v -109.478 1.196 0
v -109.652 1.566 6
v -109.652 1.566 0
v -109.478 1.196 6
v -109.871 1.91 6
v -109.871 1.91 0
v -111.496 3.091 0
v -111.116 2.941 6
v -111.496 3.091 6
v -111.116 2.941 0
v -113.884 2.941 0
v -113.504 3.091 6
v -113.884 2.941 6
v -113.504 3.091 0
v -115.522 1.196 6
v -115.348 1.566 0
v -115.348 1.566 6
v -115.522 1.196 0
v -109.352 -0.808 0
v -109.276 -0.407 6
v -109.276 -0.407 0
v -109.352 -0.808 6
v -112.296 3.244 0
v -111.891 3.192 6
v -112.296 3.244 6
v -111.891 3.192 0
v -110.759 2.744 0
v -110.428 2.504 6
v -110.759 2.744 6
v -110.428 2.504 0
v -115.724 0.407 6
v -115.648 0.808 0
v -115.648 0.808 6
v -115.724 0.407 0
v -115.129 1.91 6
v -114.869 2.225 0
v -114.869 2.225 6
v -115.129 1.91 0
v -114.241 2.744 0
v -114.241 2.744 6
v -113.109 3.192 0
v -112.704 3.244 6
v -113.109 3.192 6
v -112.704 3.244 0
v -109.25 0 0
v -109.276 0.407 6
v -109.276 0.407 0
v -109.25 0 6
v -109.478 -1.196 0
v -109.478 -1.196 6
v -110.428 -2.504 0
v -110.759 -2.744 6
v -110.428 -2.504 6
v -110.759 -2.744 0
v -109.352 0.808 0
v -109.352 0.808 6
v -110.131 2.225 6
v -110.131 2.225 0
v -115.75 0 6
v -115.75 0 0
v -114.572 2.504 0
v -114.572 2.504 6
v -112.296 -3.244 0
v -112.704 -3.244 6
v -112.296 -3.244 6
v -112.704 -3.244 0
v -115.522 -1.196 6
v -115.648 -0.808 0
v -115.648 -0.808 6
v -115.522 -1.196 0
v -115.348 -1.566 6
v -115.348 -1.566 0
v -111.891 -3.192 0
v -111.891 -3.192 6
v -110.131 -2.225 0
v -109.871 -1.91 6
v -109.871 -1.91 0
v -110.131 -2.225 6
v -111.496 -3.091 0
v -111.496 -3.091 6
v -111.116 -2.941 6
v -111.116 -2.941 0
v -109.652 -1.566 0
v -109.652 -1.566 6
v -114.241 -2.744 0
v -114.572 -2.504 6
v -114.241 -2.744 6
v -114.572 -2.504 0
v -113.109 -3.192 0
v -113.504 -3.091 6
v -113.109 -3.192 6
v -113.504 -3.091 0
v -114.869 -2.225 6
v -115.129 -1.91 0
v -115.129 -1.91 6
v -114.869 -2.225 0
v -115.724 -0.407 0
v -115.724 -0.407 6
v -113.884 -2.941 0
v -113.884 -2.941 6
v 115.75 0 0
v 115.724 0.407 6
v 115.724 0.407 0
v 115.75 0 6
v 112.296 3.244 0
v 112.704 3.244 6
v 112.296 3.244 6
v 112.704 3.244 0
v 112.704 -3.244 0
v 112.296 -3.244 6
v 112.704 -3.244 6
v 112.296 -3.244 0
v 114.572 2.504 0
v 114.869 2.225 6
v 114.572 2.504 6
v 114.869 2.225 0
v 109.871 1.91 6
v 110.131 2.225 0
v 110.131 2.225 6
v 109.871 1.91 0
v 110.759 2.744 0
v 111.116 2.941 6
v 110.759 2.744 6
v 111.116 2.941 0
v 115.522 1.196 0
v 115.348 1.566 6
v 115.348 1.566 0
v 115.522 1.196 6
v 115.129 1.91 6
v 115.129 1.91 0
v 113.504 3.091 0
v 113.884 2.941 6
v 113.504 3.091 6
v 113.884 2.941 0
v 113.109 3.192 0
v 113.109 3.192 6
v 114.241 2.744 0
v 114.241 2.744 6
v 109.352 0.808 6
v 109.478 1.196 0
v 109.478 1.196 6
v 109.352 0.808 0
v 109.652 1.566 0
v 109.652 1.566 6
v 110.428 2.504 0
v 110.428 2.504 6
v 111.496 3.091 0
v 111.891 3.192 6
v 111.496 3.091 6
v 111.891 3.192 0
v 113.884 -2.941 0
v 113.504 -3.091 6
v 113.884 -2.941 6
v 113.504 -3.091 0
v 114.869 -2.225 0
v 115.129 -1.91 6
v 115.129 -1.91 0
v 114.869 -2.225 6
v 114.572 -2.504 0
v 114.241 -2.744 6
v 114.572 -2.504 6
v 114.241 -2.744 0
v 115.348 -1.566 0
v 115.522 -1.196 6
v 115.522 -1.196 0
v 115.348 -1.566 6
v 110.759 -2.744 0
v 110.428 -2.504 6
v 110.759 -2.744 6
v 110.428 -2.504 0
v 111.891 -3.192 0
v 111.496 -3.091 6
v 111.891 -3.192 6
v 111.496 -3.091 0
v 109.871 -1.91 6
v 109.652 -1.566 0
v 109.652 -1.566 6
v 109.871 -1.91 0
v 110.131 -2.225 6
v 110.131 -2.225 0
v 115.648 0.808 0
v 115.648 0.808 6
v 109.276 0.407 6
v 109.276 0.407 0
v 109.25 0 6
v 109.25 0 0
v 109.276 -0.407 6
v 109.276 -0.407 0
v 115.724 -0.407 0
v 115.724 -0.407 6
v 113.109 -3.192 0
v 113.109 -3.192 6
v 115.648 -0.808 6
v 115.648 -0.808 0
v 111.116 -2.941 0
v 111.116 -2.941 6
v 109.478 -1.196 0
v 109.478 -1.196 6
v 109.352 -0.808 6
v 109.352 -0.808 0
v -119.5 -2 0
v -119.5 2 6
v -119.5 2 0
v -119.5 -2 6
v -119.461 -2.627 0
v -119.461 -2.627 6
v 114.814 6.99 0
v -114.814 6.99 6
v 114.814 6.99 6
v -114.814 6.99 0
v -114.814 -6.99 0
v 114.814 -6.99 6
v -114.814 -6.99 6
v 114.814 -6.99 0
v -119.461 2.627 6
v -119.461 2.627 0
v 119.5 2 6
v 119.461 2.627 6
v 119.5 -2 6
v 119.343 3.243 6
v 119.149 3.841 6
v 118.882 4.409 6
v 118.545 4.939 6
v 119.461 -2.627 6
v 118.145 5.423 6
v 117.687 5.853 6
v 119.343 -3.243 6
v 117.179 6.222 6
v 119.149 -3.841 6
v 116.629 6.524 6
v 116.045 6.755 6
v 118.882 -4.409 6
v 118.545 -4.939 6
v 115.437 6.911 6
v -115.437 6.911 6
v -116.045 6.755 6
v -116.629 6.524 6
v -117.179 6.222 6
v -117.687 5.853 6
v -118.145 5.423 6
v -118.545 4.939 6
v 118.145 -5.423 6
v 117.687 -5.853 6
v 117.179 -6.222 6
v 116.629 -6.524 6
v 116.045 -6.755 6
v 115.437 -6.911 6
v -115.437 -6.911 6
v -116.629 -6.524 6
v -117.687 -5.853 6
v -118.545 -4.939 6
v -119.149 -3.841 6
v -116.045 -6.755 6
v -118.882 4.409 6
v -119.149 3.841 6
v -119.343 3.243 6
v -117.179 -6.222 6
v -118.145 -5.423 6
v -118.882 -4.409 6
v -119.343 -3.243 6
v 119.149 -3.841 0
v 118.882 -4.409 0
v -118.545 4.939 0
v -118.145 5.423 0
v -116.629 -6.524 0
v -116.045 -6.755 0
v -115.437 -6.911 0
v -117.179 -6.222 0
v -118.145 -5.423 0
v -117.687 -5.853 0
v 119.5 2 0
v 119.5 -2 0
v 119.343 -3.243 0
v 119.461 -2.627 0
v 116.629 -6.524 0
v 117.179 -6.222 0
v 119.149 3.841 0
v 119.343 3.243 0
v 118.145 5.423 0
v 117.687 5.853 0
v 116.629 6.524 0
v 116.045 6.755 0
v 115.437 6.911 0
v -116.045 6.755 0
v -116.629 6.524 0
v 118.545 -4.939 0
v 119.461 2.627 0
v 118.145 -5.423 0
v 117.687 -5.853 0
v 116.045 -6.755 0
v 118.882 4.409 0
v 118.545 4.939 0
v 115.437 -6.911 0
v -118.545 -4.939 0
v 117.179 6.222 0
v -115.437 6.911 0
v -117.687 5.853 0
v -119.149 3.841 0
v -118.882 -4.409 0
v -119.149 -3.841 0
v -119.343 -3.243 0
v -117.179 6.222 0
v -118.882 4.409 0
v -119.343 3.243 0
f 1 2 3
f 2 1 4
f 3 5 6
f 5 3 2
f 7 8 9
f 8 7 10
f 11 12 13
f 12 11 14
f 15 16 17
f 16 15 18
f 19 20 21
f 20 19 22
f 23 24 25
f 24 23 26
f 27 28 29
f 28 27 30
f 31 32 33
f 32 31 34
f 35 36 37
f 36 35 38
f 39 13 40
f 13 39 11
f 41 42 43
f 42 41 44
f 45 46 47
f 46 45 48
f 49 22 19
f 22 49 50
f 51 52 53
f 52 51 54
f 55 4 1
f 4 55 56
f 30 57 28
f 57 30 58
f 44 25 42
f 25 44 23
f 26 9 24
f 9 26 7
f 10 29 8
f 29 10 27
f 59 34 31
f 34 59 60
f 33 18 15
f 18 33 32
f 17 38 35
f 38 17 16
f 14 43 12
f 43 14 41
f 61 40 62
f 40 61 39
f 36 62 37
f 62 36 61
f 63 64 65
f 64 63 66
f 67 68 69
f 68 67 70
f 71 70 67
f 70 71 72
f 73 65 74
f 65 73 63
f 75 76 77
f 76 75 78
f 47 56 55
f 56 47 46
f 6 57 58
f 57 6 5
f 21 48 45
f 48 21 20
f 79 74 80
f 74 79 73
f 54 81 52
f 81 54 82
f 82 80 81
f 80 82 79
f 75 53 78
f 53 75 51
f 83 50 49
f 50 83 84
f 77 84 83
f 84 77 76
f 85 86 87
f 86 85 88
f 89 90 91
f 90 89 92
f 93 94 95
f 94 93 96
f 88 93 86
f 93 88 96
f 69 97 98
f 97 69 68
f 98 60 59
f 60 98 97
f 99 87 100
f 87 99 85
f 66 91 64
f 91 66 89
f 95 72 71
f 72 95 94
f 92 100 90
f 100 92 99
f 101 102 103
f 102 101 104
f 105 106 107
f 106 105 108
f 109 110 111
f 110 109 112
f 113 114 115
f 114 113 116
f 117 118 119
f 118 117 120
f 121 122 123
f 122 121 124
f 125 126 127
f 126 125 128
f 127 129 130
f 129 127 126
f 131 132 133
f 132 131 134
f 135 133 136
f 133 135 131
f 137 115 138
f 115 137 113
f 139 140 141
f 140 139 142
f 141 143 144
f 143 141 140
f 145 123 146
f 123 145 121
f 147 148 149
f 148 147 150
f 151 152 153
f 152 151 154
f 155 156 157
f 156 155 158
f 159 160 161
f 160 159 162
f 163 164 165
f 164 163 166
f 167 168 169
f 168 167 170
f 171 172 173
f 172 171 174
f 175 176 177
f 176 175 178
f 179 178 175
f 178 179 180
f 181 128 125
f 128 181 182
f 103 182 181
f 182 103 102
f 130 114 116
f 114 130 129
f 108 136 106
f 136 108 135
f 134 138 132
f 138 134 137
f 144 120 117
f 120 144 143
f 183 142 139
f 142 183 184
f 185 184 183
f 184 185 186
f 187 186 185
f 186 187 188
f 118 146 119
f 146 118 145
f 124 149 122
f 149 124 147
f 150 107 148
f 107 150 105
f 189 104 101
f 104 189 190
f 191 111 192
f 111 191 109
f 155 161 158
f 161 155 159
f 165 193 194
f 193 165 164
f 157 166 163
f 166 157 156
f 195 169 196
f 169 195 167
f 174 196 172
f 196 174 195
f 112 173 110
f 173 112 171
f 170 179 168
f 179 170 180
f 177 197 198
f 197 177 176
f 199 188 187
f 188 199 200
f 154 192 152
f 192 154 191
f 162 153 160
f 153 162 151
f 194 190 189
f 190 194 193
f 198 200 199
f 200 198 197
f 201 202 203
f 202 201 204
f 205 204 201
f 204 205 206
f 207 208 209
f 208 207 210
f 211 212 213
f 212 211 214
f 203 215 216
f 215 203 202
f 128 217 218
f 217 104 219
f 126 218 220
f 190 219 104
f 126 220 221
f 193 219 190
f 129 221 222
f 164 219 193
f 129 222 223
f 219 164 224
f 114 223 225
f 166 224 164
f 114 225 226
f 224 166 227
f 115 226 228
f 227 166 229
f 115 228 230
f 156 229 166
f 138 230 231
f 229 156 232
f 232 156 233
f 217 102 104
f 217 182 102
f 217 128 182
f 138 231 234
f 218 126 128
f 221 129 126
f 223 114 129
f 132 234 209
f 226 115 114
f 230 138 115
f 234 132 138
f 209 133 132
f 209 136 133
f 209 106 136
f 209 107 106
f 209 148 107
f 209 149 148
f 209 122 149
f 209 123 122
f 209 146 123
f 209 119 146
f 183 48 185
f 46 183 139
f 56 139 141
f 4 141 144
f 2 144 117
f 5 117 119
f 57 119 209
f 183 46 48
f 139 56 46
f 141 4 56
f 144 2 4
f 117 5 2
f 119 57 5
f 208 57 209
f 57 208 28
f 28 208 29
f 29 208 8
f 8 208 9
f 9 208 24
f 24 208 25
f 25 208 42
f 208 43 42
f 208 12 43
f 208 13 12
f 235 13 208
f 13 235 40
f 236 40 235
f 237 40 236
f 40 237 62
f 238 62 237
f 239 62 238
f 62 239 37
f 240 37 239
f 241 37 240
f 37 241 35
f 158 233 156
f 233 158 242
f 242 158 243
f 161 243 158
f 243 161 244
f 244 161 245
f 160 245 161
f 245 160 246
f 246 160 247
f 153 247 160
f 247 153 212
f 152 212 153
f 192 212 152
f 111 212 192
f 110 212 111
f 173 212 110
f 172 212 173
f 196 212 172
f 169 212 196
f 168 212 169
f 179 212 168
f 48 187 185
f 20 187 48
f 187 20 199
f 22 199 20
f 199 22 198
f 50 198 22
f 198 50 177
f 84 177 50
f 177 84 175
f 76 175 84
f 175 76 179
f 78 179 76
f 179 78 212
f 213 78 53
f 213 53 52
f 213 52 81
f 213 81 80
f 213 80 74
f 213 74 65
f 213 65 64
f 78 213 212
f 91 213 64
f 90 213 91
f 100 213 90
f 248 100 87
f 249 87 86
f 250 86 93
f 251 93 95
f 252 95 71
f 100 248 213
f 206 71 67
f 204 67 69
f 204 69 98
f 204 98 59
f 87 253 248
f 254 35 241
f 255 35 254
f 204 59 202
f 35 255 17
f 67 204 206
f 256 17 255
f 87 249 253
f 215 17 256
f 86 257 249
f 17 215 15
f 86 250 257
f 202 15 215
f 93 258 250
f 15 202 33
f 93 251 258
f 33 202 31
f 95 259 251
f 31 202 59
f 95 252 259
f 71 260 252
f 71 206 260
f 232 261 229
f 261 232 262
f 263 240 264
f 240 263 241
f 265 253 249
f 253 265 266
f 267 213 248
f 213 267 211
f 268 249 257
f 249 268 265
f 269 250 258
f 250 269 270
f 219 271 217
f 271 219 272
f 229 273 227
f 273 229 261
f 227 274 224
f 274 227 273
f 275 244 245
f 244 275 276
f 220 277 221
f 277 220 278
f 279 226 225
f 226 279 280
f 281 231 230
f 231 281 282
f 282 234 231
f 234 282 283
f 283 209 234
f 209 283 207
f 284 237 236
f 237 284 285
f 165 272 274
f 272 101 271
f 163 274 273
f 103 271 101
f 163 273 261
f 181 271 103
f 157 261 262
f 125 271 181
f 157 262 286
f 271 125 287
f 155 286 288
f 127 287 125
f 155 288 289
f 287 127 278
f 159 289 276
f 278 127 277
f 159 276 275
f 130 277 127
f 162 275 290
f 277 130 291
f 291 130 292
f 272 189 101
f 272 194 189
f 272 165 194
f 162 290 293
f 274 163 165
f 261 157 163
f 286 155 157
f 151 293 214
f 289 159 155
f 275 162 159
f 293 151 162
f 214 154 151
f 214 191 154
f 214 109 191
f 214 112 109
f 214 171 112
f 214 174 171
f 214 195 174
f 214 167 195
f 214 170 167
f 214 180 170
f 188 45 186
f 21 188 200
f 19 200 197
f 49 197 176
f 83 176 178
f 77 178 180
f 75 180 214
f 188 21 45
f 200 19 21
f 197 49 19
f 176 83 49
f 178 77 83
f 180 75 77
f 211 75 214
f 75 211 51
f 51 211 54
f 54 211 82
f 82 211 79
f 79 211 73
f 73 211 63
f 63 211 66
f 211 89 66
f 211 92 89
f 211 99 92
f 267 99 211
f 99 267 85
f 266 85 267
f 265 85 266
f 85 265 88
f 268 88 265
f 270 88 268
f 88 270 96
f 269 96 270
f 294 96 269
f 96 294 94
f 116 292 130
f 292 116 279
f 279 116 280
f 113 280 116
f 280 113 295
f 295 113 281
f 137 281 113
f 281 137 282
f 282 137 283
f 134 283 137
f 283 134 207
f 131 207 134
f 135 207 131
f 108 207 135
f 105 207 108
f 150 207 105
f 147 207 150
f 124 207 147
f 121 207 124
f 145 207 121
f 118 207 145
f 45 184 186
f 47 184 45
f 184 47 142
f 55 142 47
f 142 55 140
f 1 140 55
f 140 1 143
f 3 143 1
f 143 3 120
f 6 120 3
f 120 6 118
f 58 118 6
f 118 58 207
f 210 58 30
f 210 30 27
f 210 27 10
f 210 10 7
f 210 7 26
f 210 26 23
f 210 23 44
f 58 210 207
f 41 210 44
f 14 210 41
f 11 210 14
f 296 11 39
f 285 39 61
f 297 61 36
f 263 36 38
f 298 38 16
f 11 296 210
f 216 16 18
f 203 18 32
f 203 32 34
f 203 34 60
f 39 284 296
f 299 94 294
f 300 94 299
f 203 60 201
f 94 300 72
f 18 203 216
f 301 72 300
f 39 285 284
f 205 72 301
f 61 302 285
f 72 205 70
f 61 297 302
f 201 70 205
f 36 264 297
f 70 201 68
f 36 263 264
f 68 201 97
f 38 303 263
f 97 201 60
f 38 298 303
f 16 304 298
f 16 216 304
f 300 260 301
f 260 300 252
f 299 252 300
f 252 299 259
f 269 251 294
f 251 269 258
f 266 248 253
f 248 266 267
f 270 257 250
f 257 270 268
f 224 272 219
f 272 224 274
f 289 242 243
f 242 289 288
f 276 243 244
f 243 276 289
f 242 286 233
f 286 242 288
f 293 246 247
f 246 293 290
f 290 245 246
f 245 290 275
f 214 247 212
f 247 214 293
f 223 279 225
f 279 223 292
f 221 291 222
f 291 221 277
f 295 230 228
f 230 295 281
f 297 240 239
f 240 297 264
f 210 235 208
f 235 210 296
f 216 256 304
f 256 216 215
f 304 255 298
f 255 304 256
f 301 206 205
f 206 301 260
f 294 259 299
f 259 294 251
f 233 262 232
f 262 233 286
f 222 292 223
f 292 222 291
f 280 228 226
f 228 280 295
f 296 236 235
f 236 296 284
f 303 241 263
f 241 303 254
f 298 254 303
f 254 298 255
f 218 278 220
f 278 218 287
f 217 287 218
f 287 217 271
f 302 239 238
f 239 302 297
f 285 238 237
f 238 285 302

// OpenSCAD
$fn = 50;


difference() {
	union() {
		hull() {
			translate(v = [-114.5000000000, 2.0000000000, 0]) {
				cylinder(h = 6, r = 5);
			}
			translate(v = [114.5000000000, 2.0000000000, 0]) {
				cylinder(h = 6, r = 5);
			}
			translate(v = [-114.5000000000, -2.0000000000, 0]) {
				cylinder(h = 6, r = 5);
			}
			translate(v = [114.5000000000, -2.0000000000, 0]) {
				cylinder(h = 6, r = 5);
			}
		}
	}
	union() {
		translate(v = [-112.5000000000, 0.0000000000, -100.0000000000]) {
			cylinder(h = 200, r = 3.2500000000);
		}
		translate(v = [-112.5000000000, 0.0000000000, -100.0000000000]) {
			cylinder(h = 200, r = 3.2500000000);
		}
		translate(v = [112.5000000000, 0.0000000000, -100.0000000000]) {
			cylinder(h = 200, r = 3.2500000000);
		}
		translate(v = [112.5000000000, 0.0000000000, -100.0000000000]) {
			cylinder(h = 200, r = 3.2500000000);
		}
	}
}
